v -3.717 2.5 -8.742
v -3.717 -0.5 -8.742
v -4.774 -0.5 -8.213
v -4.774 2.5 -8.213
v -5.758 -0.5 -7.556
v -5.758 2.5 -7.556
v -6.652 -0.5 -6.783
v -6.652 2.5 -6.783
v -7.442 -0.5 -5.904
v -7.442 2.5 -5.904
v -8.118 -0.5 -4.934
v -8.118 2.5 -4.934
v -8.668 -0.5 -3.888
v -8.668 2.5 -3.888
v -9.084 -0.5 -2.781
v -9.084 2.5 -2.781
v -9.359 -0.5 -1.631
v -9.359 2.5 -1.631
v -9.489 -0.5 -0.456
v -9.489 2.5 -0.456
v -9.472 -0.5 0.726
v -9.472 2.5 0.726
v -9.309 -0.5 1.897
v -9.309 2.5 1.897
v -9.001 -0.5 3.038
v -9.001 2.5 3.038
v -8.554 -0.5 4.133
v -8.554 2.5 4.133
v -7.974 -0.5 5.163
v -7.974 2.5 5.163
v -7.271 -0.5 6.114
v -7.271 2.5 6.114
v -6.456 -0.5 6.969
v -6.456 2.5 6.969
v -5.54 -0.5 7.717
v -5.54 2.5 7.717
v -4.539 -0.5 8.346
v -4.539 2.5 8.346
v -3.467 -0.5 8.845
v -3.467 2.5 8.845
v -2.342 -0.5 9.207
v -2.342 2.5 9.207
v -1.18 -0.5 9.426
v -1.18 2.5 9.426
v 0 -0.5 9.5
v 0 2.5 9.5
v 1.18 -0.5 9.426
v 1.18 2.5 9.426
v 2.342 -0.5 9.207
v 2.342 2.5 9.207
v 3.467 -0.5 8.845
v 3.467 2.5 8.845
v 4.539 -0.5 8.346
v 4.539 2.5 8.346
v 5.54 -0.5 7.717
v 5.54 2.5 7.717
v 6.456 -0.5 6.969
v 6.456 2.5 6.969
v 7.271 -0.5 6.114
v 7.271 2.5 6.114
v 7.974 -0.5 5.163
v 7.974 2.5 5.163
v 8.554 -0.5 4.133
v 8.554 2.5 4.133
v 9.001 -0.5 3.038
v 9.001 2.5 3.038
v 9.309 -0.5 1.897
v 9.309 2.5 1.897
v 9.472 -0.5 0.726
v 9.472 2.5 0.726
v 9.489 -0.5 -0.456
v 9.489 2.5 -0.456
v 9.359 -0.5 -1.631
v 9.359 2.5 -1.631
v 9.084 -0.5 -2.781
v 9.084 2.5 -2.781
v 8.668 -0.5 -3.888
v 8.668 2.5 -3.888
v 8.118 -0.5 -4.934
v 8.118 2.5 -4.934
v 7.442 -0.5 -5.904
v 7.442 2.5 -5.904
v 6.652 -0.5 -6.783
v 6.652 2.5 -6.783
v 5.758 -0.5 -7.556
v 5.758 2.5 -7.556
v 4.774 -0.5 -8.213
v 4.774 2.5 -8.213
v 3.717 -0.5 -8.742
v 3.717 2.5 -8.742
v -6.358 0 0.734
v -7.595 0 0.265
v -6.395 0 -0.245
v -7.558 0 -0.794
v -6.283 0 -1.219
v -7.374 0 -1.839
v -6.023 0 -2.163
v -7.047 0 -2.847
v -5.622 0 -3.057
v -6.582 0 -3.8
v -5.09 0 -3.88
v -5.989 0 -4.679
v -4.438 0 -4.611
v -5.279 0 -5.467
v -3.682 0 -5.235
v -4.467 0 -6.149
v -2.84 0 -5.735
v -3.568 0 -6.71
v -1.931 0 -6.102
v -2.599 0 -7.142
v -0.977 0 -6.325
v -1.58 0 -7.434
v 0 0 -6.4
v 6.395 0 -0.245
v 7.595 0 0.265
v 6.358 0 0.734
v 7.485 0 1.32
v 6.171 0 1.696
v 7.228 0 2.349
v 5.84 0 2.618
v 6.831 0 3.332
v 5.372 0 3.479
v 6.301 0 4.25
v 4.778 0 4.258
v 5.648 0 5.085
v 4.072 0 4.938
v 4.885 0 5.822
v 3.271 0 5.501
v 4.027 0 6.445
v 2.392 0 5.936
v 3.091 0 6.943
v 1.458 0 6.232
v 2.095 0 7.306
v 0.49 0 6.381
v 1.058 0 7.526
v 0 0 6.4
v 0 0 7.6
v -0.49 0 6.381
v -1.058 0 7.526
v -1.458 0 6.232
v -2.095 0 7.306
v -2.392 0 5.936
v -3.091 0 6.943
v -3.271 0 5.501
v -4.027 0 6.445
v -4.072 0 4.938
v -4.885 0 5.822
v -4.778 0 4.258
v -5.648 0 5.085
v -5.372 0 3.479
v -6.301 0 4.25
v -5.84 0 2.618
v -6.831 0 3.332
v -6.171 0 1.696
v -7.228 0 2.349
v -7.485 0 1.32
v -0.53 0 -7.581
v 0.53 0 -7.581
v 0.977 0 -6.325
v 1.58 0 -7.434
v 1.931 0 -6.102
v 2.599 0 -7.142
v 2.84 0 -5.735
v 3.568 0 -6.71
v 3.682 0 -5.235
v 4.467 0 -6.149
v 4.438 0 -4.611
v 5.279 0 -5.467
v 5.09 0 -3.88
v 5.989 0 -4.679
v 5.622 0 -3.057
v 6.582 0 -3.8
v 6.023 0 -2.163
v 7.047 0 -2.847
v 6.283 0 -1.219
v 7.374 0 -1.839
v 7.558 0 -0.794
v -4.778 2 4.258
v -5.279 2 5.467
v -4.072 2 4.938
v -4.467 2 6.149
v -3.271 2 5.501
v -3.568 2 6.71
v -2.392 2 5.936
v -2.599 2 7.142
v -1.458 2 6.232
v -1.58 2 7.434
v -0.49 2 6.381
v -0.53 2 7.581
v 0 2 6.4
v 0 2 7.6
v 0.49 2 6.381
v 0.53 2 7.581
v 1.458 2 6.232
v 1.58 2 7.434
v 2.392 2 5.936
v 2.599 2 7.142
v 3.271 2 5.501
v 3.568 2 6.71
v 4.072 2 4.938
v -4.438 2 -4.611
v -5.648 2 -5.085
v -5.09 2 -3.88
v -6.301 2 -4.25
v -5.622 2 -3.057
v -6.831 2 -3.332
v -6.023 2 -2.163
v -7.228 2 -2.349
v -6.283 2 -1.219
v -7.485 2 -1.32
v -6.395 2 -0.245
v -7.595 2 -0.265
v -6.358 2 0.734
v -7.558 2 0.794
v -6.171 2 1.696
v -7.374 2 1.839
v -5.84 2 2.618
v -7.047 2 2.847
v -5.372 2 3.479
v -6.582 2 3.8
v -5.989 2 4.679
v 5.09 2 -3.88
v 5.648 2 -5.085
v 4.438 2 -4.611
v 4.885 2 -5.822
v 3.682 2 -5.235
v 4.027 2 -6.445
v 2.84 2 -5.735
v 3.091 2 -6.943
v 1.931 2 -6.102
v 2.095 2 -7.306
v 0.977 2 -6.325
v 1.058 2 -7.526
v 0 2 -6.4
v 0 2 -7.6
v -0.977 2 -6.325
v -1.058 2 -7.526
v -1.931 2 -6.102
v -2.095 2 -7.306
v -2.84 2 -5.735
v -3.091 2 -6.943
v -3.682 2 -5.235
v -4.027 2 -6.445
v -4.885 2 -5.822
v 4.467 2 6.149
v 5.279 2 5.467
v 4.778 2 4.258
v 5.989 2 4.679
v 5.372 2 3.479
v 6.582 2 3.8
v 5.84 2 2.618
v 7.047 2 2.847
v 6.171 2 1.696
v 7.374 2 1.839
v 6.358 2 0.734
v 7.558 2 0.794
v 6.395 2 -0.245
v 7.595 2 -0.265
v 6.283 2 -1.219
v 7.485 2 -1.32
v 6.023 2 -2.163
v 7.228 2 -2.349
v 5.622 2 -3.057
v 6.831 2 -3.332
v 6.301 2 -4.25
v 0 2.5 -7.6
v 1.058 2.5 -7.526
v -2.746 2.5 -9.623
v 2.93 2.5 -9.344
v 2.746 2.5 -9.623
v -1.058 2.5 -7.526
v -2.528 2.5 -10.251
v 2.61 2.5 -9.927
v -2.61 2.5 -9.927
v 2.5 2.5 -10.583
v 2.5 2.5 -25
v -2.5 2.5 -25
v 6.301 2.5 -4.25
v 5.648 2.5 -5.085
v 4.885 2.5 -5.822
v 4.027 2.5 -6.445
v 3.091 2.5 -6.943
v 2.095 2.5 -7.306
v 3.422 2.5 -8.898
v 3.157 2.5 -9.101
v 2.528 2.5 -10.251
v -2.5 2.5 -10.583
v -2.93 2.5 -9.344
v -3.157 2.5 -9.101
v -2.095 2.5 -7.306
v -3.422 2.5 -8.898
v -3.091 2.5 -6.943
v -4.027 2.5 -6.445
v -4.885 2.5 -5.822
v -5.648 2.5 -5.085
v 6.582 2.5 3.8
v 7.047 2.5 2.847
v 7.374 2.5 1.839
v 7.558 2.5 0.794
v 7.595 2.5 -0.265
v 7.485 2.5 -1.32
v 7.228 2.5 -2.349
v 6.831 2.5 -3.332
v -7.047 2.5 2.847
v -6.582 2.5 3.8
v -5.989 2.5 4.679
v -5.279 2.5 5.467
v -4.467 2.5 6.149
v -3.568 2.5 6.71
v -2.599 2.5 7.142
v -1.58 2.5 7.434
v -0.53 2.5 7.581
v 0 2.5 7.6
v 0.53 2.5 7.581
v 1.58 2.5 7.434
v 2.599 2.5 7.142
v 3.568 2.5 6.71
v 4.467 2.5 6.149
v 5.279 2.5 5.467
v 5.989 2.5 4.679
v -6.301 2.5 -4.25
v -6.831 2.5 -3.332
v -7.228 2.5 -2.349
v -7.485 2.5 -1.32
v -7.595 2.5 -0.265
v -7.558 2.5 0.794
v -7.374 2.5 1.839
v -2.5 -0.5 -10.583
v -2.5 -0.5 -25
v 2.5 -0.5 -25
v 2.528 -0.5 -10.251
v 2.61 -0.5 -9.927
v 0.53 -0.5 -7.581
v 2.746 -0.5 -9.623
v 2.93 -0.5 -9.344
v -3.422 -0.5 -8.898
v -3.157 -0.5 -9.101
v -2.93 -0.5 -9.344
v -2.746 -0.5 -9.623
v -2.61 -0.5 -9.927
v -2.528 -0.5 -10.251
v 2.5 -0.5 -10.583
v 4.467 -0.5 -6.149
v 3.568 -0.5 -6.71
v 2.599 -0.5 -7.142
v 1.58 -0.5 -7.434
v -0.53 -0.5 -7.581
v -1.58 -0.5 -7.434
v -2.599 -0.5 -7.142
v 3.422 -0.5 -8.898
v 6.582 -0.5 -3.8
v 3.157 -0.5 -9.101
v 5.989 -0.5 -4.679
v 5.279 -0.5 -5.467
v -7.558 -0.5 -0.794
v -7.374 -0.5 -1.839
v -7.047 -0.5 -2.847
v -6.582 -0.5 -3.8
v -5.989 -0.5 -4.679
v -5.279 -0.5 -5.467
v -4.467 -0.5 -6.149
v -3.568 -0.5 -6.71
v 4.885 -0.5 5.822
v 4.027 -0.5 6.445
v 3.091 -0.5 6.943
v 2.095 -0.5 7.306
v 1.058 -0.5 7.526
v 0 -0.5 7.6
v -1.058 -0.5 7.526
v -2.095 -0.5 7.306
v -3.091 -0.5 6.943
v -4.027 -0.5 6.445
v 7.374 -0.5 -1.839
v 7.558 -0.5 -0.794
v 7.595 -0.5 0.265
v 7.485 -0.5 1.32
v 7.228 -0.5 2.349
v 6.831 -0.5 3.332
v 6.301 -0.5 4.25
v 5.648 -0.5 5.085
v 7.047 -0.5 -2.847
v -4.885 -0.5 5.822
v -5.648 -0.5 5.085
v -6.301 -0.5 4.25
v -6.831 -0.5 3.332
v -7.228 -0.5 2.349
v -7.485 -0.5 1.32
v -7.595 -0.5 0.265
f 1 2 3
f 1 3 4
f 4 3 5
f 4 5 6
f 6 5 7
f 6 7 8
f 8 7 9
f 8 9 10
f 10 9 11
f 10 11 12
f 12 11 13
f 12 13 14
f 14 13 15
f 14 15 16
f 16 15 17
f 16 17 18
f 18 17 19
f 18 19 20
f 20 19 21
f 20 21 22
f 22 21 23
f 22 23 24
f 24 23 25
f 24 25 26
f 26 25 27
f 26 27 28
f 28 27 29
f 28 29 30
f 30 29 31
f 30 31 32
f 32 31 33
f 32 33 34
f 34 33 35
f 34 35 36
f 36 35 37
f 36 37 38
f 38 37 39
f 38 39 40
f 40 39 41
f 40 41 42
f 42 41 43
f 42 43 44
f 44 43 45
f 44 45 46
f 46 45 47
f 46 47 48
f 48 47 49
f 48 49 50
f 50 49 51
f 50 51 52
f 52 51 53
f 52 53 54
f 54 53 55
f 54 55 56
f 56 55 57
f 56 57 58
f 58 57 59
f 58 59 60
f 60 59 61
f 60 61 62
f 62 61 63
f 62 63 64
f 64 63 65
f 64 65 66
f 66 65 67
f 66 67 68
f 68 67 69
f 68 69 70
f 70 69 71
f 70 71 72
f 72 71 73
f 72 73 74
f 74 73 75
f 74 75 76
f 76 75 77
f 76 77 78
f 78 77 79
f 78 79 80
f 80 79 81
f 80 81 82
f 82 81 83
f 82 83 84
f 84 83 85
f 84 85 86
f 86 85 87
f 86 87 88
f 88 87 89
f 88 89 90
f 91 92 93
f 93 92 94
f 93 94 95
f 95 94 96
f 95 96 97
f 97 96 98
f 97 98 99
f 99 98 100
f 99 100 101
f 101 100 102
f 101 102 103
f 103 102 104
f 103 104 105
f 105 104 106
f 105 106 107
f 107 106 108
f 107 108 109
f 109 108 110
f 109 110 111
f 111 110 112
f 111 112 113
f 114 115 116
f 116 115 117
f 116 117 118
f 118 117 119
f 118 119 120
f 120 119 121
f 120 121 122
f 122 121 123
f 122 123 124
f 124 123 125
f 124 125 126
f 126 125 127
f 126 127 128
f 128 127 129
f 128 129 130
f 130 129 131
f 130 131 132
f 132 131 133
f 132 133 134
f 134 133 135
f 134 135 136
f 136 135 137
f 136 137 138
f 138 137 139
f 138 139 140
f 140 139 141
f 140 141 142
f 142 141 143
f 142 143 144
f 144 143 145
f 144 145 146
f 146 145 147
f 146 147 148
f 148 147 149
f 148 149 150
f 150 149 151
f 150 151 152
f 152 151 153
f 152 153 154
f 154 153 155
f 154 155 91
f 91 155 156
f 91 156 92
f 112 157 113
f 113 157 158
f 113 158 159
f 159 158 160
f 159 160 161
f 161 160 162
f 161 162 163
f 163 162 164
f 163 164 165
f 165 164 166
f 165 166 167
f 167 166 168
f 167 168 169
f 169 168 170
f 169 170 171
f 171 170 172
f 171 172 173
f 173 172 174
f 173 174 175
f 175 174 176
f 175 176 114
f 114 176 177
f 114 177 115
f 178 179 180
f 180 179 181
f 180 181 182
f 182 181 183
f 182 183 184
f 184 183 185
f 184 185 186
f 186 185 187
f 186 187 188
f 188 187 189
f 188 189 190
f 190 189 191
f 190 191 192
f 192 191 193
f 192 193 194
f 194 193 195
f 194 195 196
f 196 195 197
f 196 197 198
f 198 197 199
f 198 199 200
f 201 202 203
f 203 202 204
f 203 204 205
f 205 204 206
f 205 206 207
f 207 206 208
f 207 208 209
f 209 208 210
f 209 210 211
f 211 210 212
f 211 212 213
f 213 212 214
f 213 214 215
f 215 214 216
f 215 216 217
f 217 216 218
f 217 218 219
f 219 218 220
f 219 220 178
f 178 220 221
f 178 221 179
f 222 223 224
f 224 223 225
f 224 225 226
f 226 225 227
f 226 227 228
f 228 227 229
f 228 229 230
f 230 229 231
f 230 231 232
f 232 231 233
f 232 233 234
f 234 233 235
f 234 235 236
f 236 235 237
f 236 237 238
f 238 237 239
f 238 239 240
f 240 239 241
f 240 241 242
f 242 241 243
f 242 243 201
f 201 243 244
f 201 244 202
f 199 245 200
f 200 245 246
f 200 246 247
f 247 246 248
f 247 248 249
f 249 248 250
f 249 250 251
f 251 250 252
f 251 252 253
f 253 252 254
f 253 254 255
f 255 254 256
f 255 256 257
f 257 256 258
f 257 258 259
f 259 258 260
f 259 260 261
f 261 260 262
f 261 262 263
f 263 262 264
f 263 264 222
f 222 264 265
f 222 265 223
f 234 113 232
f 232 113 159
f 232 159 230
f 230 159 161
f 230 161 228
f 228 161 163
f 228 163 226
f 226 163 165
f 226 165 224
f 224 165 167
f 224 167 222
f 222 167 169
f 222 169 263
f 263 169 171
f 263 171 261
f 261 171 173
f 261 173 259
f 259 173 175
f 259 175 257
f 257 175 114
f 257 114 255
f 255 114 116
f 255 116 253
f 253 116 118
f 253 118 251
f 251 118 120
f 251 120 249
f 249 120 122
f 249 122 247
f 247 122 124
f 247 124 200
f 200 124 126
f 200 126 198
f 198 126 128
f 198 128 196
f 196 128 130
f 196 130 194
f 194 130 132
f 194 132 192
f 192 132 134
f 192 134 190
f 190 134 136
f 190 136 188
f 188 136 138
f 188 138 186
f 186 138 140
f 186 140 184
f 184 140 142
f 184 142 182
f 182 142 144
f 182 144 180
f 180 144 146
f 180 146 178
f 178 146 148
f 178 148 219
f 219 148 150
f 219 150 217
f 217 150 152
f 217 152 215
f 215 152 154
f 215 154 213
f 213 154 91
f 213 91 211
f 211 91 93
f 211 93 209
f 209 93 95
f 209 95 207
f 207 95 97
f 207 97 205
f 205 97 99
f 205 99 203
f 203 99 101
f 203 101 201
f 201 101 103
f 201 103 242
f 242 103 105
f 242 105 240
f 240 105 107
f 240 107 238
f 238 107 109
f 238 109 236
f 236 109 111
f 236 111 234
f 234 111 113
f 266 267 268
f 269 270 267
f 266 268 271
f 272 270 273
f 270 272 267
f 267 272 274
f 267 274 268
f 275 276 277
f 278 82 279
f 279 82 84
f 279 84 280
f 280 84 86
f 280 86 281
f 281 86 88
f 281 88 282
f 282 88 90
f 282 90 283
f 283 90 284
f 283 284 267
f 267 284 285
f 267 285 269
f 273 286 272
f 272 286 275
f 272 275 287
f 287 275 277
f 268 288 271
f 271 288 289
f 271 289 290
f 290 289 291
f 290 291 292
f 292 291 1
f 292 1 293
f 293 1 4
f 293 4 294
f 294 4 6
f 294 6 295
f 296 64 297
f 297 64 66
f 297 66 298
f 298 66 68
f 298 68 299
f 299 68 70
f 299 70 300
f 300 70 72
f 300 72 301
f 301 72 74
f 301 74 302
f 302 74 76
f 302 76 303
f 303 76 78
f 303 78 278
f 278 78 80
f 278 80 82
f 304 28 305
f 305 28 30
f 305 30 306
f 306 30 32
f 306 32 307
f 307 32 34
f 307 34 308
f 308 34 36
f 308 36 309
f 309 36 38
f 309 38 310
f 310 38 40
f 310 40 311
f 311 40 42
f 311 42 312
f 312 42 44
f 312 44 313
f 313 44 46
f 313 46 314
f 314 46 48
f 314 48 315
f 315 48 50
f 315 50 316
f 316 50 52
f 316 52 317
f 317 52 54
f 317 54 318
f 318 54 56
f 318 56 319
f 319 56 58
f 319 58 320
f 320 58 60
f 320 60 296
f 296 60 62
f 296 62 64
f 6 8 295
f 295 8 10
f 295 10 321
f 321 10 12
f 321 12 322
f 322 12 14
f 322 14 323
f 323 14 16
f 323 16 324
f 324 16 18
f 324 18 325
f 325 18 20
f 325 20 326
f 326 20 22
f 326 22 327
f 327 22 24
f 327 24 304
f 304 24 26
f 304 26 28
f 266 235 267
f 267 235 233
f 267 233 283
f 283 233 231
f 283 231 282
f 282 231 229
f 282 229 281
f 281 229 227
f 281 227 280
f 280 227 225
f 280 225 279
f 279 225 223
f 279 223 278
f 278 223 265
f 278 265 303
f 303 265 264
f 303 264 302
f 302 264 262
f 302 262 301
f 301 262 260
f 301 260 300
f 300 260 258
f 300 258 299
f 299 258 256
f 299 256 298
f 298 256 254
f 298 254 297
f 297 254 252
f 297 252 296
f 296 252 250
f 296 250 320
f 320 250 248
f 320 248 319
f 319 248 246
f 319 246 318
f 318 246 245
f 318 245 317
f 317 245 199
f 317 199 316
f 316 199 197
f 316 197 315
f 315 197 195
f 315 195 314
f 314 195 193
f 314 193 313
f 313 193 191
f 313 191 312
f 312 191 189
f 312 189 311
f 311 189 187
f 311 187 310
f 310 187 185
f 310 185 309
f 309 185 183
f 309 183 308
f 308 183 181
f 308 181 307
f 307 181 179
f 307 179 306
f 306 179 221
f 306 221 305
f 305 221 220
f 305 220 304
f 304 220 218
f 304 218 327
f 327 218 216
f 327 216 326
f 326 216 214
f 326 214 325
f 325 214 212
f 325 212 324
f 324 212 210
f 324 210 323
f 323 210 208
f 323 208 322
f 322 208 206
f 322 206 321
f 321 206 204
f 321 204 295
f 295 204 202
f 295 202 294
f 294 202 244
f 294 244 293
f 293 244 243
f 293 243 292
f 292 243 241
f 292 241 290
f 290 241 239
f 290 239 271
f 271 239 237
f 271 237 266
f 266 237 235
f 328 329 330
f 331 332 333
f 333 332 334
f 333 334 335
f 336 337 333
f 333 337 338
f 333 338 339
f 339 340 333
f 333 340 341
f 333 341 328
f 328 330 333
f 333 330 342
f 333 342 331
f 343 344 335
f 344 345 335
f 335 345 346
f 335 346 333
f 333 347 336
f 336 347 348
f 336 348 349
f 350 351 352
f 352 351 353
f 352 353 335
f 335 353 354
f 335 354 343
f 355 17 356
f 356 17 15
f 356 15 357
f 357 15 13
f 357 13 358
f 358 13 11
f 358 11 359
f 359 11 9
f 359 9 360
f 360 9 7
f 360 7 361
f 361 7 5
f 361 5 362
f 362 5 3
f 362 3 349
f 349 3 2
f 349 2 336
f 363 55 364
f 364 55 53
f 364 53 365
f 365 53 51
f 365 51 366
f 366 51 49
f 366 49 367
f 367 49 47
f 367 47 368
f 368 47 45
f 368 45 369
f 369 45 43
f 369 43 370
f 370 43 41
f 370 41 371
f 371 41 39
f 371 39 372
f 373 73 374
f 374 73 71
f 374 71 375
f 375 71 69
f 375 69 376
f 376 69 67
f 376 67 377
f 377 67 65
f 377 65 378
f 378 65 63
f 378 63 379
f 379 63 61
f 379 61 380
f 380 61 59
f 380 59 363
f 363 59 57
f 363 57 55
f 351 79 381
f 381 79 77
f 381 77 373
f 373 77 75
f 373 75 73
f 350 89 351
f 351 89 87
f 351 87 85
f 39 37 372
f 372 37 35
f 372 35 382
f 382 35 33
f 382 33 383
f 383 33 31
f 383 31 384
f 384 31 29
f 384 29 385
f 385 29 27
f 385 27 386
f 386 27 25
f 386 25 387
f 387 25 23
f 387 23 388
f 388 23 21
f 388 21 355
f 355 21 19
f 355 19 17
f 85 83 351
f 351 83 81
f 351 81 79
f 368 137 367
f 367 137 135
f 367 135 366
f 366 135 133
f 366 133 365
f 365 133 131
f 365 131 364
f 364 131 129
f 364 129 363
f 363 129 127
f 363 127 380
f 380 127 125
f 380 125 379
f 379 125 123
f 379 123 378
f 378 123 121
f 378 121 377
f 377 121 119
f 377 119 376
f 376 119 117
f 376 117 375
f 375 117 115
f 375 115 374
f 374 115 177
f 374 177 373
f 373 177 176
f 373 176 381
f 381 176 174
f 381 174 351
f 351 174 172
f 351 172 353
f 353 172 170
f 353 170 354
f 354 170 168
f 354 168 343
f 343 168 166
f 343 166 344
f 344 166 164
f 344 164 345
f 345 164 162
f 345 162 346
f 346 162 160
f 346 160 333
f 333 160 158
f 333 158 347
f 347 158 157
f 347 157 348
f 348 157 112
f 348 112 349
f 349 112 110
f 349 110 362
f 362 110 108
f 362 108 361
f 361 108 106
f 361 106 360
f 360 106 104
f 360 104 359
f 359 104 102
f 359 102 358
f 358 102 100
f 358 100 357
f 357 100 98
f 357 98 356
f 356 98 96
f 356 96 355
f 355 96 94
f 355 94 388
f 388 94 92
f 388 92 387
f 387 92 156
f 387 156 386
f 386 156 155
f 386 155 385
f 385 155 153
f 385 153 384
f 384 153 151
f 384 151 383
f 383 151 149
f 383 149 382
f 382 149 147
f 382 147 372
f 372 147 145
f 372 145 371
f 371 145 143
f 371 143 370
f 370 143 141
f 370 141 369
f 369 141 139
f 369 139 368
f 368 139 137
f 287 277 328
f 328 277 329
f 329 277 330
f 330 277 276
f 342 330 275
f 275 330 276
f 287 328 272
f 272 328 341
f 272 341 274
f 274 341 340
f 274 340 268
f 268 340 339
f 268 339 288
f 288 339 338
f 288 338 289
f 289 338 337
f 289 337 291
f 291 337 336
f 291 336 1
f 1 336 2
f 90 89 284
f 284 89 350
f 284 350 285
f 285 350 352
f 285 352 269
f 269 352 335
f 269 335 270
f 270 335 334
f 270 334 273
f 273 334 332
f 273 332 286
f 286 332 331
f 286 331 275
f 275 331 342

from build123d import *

# Parameters (mm, degrees)
SKETCH_1_R      = 9.5
SKETCH_1_R_2    = 6.4
EXTRUDE_1_DEPTH = 2
SKETCH_2_R      = 9.5
SKETCH_2_R_2    = 7.6
EXTRUDE_2_DEPTH = 0.5
EXTRUDE_START   = -2.5
SKETCH_2_2_R    = 9.5
SKETCH_2_2_R_2  = 7.6
EXTRUDE_3_DEPTH = 0.5
EXTRUDE_START_2 = -3
EXTRUDE_4_DEPTH = 3
FILLET_1_R      = 2


with BuildPart() as part:
    # 草图1 → 凸台-拉伸1 (new body)
    with BuildSketch(Plane(origin=(0, 0, 0), x_dir=(1, 0, 0), z_dir=(0, 1, 0))):
        with Locations(Location((0, 0, 0), (0, 0, 270))):
            Circle(SKETCH_1_R)
        with Locations(Location((0, 0, 0), (0, 0, 270))):
            Circle(SKETCH_1_R_2, mode=Mode.SUBTRACT)
    extrude(amount=EXTRUDE_1_DEPTH)

    # 草图2 → 凸台-拉伸2 (add)
    with BuildSketch(Plane(origin=(0, 2, 0), x_dir=(1, 0, 0), z_dir=(0, 1, 0))):
        with Locations(Location((0, 0, 0), (0, 0, 270))):
            Circle(SKETCH_2_R)
        with Locations(Location((0, 0, 0), (0, 0, 270))):
            Circle(SKETCH_2_R_2, mode=Mode.SUBTRACT)
    extrude(amount=EXTRUDE_2_DEPTH)

    # 草图2<2> → 凸台-拉伸3 (add)
    with BuildSketch(Plane(origin=(0, 2, 0), x_dir=(1, 0, 0), z_dir=(0, 1, 0)).offset(EXTRUDE_START)):
        with Locations(Location((0, 0, 0), (0, 0, 270))):
            Circle(SKETCH_2_2_R)
        with Locations(Location((0, 0, 0), (0, 0, 270))):
            Circle(SKETCH_2_2_R_2, mode=Mode.SUBTRACT)
    extrude(amount=EXTRUDE_3_DEPTH)

    # 草图4 → 凸台-拉伸4 (add)
    with BuildSketch(Plane(origin=(0, 2.5, 0), x_dir=(1, 0, 0), z_dir=(0, 1, 0)).offset(EXTRUDE_START_2)):
        with BuildLine():
            Line((-2.5, 25), (-2.5, 9.16515139))
            ThreePointArc((-2.5, 9.16515139), (0, 9.5), (2.5, 9.16515139))
            Line((2.5, 9.16515139), (2.5, 25))
            Line((2.5, 25), (-2.5, 25))
        make_face()
    extrude(amount=EXTRUDE_4_DEPTH)

    # 圆角1
    fillet_1_edges = [part.edges().sort_by_distance(p)[0] for p in [
        (2.5, 1, -9.16515139),
        (-2.5, 1, -9.16515139),
    ]]
    fillet(fillet_1_edges, radius=FILLET_1_R)


solid = part.part
